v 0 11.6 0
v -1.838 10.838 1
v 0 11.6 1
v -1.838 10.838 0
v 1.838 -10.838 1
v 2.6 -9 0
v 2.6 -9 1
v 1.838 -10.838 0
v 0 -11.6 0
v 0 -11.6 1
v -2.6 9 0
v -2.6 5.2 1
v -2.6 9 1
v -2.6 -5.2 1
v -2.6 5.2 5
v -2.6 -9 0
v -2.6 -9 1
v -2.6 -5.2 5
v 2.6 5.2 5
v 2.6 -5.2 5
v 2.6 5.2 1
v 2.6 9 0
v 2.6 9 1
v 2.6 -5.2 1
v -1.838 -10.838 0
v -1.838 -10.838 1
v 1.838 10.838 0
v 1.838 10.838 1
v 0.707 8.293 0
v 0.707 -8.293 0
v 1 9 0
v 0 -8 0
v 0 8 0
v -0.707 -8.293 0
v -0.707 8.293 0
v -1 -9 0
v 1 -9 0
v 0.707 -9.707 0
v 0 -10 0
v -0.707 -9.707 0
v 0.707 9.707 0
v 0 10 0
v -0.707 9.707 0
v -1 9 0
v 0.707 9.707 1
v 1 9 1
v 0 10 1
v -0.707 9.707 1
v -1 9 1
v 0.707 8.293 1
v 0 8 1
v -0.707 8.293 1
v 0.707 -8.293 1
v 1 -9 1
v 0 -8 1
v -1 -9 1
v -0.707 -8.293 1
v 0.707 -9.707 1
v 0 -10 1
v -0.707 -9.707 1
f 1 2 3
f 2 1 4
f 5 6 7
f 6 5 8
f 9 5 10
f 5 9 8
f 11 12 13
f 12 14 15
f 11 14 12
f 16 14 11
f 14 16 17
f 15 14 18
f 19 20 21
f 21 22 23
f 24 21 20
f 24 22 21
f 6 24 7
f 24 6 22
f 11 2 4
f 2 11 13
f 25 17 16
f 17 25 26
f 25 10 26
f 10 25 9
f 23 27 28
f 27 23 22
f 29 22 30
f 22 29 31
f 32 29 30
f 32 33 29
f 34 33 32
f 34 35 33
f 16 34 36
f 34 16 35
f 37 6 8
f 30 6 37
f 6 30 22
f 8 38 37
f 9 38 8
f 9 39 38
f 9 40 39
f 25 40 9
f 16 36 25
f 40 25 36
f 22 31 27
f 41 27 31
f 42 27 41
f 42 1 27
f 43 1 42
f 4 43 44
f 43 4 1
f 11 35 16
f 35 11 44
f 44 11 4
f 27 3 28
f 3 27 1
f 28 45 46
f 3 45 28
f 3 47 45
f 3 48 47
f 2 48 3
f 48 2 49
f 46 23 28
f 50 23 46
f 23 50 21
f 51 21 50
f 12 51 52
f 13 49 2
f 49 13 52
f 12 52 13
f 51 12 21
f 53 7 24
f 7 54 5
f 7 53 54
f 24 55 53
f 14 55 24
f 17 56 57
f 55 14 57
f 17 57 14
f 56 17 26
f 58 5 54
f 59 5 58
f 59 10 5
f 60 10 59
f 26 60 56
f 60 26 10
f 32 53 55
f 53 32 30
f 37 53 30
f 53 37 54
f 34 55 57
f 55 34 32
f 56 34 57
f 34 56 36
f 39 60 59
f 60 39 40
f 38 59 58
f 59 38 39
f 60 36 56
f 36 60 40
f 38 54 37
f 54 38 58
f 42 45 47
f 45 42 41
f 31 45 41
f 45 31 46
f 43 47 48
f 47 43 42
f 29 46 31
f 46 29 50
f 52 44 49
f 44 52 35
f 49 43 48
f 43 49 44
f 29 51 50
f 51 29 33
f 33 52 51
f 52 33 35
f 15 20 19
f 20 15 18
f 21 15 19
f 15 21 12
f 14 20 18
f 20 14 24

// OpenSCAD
// File: OLED bracket.scad
// Description: A bracket to hold the OLED in position. Only needed for the handwired version of Dodepan.
// Author: Turi Scandurra
// Website: https://www.turiscandurra.com/circuits
// Date: 2024-09-20
// License: MIT License

mount_w = 1.6;
screw_r = 1.0;
bracket_height = 4;
radius = mount_w + screw_r;

module standoff(height){
    difference() {
         cylinder(r = mount_w + screw_r, h = height,$fn=8);
         cylinder(r = screw_r, h = height,$fn=8);
    }
}

module OLED_bracket(){
    difference() {
        hull(){
            translate([0,-9]) standoff(1);
            translate([0,9]) standoff(1);
        }
        translate([0,-9])
            cylinder(r = screw_r, h = bracket_height,$fn=8);
        translate([0,9])
            cylinder(r = screw_r, h = bracket_height,$fn=8);
    }
    translate([radius*-1, radius*-2,1])
        cube([radius*2, radius*4, bracket_height]);
}

OLED_bracket();
